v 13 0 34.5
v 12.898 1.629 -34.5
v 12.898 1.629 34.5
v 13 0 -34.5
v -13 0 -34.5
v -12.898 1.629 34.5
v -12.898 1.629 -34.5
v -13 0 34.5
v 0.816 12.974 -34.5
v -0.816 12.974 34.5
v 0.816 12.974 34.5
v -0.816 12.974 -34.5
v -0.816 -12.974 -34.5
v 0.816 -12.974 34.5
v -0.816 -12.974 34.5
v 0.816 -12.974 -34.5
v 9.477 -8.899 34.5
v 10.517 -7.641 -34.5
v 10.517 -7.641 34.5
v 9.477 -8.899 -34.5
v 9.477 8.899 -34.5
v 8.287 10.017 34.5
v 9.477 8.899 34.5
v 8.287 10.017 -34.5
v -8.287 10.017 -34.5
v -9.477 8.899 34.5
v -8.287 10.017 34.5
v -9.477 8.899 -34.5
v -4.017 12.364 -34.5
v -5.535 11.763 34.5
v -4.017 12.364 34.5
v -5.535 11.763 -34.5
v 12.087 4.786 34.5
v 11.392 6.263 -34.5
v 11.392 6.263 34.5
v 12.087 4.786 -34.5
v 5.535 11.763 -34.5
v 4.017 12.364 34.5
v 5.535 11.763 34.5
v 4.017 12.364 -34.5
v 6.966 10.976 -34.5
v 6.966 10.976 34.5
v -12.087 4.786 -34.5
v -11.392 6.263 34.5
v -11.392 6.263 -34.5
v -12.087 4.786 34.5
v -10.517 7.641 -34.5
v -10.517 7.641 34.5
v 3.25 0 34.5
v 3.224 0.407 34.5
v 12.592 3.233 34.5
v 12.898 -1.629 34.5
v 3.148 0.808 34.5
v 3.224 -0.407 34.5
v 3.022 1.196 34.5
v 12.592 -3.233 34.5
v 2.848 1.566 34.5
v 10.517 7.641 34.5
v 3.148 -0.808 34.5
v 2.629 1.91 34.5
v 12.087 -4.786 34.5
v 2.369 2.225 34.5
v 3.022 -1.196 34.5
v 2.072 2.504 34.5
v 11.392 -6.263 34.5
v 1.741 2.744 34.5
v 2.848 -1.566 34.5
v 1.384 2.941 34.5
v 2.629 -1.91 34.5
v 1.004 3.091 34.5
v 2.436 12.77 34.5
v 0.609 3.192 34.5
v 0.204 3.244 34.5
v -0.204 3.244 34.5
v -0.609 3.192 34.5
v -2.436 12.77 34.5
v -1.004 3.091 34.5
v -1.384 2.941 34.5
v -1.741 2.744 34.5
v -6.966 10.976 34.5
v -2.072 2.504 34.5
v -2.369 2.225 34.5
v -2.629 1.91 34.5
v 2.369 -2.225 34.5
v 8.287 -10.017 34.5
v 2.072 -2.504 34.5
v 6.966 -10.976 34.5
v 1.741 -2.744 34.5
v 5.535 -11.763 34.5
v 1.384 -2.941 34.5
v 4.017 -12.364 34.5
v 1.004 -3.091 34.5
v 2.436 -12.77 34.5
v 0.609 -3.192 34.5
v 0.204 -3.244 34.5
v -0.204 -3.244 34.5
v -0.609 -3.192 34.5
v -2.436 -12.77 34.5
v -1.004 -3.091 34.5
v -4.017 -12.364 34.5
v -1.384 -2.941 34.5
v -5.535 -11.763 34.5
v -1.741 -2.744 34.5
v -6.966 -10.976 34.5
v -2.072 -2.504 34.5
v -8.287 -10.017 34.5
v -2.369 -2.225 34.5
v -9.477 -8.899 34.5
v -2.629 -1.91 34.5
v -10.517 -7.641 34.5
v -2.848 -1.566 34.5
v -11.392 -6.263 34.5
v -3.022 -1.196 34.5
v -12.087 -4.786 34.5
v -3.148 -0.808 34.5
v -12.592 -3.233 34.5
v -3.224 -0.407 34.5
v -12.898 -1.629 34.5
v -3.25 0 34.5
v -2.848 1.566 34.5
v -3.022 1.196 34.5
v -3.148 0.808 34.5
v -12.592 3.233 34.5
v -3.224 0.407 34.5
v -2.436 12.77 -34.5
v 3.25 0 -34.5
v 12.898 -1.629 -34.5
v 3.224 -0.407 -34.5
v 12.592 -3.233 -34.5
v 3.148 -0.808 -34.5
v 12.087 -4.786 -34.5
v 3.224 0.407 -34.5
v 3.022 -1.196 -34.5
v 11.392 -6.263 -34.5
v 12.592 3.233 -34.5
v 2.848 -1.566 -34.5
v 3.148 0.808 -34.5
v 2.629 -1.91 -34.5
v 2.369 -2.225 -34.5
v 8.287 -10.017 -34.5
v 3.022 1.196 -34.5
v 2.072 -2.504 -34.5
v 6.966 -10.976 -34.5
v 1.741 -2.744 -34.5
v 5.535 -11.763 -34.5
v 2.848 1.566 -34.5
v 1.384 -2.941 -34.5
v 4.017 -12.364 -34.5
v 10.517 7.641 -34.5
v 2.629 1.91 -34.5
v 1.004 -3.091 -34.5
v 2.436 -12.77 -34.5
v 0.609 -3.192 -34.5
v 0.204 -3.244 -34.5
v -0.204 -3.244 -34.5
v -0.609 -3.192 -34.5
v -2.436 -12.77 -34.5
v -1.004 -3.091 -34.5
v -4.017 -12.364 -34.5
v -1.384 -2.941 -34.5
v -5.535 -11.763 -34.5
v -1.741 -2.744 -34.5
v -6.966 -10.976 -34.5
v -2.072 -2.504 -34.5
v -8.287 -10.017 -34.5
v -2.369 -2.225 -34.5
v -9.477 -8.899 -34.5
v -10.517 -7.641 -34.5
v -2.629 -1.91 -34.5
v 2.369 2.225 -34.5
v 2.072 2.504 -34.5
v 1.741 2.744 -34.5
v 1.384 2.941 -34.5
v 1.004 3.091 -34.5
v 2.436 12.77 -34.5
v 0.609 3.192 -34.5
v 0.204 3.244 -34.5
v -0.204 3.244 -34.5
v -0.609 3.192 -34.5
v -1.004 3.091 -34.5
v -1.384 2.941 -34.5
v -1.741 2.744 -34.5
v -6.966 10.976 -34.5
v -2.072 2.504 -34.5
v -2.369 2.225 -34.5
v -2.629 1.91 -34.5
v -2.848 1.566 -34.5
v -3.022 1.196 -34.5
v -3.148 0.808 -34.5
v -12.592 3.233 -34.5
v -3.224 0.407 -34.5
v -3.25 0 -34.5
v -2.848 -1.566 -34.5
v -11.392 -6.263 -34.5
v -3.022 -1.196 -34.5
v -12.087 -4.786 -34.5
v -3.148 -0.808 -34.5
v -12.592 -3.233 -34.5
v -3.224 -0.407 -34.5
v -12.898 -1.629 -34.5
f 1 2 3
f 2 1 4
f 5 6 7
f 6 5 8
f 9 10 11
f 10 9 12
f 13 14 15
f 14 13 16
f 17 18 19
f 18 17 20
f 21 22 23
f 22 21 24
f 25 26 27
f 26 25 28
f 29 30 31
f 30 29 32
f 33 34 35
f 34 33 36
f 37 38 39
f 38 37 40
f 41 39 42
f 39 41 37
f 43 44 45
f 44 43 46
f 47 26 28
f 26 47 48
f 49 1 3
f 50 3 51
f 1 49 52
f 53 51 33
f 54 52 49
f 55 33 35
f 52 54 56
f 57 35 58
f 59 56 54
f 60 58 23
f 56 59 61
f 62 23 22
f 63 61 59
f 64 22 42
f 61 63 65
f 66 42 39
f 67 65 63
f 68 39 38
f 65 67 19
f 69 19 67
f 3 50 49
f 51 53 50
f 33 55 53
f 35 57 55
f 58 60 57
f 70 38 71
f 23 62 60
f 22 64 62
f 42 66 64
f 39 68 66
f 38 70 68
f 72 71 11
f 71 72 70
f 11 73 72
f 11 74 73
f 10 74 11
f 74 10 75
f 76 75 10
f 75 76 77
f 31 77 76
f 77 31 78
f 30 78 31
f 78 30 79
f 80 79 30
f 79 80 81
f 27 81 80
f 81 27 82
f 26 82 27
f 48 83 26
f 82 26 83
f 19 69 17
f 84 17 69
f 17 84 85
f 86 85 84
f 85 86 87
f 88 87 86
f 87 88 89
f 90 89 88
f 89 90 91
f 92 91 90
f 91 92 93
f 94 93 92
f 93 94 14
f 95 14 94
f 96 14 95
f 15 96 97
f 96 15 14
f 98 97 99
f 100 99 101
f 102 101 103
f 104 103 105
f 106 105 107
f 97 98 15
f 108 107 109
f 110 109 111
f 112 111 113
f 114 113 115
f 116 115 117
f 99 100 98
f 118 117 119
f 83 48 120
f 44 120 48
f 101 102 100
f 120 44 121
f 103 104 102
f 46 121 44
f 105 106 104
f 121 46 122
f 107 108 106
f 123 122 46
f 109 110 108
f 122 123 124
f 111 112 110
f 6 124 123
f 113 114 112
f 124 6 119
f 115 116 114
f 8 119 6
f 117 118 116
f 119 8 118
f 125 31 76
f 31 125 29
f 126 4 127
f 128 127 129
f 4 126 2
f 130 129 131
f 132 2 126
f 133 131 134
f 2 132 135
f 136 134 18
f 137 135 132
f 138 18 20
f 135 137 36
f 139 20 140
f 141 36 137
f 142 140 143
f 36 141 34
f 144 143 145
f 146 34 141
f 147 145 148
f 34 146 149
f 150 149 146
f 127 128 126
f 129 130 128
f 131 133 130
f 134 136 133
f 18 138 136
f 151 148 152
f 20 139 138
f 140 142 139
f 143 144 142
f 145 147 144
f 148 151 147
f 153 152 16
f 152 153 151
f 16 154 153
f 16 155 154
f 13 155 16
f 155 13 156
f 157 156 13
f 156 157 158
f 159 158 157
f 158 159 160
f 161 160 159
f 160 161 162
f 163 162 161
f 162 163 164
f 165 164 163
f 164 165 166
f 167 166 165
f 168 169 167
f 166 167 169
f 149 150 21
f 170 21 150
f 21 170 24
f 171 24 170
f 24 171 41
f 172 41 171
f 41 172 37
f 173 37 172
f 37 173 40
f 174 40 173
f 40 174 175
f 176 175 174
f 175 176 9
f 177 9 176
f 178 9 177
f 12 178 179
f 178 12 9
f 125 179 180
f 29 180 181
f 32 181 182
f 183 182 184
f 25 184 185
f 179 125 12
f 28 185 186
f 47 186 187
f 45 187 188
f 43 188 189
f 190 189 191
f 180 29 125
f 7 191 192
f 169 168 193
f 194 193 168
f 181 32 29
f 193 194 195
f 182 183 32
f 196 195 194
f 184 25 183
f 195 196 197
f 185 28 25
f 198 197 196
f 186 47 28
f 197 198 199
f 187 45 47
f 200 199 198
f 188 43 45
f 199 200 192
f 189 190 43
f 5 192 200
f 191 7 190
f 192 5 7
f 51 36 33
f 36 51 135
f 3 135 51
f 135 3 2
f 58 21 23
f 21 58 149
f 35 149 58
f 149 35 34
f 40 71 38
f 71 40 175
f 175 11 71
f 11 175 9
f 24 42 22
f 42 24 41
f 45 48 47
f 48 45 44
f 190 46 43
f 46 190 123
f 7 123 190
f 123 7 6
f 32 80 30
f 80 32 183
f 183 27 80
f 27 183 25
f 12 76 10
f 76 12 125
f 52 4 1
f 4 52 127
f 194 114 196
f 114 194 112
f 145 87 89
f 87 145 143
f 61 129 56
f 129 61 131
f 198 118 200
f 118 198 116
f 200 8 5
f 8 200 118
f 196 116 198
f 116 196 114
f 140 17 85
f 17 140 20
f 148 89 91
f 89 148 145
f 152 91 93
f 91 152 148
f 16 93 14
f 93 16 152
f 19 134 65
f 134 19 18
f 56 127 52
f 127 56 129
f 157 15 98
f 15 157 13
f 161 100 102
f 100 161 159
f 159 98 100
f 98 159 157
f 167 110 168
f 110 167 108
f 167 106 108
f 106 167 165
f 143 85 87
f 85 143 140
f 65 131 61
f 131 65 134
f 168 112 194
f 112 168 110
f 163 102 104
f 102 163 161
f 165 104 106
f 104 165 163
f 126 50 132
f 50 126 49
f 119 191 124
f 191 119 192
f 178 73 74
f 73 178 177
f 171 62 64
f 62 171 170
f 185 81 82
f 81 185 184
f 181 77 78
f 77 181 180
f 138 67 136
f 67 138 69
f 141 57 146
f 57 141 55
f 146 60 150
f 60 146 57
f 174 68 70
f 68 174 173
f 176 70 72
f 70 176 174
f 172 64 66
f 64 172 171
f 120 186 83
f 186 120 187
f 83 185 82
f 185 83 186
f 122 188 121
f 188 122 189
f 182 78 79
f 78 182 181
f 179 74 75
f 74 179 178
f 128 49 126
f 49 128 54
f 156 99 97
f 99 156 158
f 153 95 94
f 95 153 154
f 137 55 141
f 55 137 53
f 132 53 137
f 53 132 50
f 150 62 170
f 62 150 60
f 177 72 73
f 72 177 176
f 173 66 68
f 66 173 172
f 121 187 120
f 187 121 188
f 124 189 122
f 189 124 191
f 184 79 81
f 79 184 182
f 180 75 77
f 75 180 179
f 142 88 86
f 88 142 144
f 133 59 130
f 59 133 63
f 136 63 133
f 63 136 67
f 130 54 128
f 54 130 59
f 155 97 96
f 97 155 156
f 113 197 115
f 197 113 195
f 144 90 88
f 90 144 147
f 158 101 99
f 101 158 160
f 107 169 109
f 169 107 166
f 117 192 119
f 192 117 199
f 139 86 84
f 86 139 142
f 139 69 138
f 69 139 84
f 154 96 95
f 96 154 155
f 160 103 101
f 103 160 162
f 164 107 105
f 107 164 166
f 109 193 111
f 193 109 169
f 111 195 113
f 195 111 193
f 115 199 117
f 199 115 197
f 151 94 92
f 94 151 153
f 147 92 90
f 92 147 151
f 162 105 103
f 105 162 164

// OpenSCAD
$fn = 50;


difference() {
	union() {
		translate(v = [0, 0, -34.5000000000]) {
			cylinder(h = 69, r = 13.0000000000);
		}
	}
	union() {
		translate(v = [0, 0, -100.0000000000]) {
			cylinder(h = 200, r = 3.2500000000);
		}
	}
}
